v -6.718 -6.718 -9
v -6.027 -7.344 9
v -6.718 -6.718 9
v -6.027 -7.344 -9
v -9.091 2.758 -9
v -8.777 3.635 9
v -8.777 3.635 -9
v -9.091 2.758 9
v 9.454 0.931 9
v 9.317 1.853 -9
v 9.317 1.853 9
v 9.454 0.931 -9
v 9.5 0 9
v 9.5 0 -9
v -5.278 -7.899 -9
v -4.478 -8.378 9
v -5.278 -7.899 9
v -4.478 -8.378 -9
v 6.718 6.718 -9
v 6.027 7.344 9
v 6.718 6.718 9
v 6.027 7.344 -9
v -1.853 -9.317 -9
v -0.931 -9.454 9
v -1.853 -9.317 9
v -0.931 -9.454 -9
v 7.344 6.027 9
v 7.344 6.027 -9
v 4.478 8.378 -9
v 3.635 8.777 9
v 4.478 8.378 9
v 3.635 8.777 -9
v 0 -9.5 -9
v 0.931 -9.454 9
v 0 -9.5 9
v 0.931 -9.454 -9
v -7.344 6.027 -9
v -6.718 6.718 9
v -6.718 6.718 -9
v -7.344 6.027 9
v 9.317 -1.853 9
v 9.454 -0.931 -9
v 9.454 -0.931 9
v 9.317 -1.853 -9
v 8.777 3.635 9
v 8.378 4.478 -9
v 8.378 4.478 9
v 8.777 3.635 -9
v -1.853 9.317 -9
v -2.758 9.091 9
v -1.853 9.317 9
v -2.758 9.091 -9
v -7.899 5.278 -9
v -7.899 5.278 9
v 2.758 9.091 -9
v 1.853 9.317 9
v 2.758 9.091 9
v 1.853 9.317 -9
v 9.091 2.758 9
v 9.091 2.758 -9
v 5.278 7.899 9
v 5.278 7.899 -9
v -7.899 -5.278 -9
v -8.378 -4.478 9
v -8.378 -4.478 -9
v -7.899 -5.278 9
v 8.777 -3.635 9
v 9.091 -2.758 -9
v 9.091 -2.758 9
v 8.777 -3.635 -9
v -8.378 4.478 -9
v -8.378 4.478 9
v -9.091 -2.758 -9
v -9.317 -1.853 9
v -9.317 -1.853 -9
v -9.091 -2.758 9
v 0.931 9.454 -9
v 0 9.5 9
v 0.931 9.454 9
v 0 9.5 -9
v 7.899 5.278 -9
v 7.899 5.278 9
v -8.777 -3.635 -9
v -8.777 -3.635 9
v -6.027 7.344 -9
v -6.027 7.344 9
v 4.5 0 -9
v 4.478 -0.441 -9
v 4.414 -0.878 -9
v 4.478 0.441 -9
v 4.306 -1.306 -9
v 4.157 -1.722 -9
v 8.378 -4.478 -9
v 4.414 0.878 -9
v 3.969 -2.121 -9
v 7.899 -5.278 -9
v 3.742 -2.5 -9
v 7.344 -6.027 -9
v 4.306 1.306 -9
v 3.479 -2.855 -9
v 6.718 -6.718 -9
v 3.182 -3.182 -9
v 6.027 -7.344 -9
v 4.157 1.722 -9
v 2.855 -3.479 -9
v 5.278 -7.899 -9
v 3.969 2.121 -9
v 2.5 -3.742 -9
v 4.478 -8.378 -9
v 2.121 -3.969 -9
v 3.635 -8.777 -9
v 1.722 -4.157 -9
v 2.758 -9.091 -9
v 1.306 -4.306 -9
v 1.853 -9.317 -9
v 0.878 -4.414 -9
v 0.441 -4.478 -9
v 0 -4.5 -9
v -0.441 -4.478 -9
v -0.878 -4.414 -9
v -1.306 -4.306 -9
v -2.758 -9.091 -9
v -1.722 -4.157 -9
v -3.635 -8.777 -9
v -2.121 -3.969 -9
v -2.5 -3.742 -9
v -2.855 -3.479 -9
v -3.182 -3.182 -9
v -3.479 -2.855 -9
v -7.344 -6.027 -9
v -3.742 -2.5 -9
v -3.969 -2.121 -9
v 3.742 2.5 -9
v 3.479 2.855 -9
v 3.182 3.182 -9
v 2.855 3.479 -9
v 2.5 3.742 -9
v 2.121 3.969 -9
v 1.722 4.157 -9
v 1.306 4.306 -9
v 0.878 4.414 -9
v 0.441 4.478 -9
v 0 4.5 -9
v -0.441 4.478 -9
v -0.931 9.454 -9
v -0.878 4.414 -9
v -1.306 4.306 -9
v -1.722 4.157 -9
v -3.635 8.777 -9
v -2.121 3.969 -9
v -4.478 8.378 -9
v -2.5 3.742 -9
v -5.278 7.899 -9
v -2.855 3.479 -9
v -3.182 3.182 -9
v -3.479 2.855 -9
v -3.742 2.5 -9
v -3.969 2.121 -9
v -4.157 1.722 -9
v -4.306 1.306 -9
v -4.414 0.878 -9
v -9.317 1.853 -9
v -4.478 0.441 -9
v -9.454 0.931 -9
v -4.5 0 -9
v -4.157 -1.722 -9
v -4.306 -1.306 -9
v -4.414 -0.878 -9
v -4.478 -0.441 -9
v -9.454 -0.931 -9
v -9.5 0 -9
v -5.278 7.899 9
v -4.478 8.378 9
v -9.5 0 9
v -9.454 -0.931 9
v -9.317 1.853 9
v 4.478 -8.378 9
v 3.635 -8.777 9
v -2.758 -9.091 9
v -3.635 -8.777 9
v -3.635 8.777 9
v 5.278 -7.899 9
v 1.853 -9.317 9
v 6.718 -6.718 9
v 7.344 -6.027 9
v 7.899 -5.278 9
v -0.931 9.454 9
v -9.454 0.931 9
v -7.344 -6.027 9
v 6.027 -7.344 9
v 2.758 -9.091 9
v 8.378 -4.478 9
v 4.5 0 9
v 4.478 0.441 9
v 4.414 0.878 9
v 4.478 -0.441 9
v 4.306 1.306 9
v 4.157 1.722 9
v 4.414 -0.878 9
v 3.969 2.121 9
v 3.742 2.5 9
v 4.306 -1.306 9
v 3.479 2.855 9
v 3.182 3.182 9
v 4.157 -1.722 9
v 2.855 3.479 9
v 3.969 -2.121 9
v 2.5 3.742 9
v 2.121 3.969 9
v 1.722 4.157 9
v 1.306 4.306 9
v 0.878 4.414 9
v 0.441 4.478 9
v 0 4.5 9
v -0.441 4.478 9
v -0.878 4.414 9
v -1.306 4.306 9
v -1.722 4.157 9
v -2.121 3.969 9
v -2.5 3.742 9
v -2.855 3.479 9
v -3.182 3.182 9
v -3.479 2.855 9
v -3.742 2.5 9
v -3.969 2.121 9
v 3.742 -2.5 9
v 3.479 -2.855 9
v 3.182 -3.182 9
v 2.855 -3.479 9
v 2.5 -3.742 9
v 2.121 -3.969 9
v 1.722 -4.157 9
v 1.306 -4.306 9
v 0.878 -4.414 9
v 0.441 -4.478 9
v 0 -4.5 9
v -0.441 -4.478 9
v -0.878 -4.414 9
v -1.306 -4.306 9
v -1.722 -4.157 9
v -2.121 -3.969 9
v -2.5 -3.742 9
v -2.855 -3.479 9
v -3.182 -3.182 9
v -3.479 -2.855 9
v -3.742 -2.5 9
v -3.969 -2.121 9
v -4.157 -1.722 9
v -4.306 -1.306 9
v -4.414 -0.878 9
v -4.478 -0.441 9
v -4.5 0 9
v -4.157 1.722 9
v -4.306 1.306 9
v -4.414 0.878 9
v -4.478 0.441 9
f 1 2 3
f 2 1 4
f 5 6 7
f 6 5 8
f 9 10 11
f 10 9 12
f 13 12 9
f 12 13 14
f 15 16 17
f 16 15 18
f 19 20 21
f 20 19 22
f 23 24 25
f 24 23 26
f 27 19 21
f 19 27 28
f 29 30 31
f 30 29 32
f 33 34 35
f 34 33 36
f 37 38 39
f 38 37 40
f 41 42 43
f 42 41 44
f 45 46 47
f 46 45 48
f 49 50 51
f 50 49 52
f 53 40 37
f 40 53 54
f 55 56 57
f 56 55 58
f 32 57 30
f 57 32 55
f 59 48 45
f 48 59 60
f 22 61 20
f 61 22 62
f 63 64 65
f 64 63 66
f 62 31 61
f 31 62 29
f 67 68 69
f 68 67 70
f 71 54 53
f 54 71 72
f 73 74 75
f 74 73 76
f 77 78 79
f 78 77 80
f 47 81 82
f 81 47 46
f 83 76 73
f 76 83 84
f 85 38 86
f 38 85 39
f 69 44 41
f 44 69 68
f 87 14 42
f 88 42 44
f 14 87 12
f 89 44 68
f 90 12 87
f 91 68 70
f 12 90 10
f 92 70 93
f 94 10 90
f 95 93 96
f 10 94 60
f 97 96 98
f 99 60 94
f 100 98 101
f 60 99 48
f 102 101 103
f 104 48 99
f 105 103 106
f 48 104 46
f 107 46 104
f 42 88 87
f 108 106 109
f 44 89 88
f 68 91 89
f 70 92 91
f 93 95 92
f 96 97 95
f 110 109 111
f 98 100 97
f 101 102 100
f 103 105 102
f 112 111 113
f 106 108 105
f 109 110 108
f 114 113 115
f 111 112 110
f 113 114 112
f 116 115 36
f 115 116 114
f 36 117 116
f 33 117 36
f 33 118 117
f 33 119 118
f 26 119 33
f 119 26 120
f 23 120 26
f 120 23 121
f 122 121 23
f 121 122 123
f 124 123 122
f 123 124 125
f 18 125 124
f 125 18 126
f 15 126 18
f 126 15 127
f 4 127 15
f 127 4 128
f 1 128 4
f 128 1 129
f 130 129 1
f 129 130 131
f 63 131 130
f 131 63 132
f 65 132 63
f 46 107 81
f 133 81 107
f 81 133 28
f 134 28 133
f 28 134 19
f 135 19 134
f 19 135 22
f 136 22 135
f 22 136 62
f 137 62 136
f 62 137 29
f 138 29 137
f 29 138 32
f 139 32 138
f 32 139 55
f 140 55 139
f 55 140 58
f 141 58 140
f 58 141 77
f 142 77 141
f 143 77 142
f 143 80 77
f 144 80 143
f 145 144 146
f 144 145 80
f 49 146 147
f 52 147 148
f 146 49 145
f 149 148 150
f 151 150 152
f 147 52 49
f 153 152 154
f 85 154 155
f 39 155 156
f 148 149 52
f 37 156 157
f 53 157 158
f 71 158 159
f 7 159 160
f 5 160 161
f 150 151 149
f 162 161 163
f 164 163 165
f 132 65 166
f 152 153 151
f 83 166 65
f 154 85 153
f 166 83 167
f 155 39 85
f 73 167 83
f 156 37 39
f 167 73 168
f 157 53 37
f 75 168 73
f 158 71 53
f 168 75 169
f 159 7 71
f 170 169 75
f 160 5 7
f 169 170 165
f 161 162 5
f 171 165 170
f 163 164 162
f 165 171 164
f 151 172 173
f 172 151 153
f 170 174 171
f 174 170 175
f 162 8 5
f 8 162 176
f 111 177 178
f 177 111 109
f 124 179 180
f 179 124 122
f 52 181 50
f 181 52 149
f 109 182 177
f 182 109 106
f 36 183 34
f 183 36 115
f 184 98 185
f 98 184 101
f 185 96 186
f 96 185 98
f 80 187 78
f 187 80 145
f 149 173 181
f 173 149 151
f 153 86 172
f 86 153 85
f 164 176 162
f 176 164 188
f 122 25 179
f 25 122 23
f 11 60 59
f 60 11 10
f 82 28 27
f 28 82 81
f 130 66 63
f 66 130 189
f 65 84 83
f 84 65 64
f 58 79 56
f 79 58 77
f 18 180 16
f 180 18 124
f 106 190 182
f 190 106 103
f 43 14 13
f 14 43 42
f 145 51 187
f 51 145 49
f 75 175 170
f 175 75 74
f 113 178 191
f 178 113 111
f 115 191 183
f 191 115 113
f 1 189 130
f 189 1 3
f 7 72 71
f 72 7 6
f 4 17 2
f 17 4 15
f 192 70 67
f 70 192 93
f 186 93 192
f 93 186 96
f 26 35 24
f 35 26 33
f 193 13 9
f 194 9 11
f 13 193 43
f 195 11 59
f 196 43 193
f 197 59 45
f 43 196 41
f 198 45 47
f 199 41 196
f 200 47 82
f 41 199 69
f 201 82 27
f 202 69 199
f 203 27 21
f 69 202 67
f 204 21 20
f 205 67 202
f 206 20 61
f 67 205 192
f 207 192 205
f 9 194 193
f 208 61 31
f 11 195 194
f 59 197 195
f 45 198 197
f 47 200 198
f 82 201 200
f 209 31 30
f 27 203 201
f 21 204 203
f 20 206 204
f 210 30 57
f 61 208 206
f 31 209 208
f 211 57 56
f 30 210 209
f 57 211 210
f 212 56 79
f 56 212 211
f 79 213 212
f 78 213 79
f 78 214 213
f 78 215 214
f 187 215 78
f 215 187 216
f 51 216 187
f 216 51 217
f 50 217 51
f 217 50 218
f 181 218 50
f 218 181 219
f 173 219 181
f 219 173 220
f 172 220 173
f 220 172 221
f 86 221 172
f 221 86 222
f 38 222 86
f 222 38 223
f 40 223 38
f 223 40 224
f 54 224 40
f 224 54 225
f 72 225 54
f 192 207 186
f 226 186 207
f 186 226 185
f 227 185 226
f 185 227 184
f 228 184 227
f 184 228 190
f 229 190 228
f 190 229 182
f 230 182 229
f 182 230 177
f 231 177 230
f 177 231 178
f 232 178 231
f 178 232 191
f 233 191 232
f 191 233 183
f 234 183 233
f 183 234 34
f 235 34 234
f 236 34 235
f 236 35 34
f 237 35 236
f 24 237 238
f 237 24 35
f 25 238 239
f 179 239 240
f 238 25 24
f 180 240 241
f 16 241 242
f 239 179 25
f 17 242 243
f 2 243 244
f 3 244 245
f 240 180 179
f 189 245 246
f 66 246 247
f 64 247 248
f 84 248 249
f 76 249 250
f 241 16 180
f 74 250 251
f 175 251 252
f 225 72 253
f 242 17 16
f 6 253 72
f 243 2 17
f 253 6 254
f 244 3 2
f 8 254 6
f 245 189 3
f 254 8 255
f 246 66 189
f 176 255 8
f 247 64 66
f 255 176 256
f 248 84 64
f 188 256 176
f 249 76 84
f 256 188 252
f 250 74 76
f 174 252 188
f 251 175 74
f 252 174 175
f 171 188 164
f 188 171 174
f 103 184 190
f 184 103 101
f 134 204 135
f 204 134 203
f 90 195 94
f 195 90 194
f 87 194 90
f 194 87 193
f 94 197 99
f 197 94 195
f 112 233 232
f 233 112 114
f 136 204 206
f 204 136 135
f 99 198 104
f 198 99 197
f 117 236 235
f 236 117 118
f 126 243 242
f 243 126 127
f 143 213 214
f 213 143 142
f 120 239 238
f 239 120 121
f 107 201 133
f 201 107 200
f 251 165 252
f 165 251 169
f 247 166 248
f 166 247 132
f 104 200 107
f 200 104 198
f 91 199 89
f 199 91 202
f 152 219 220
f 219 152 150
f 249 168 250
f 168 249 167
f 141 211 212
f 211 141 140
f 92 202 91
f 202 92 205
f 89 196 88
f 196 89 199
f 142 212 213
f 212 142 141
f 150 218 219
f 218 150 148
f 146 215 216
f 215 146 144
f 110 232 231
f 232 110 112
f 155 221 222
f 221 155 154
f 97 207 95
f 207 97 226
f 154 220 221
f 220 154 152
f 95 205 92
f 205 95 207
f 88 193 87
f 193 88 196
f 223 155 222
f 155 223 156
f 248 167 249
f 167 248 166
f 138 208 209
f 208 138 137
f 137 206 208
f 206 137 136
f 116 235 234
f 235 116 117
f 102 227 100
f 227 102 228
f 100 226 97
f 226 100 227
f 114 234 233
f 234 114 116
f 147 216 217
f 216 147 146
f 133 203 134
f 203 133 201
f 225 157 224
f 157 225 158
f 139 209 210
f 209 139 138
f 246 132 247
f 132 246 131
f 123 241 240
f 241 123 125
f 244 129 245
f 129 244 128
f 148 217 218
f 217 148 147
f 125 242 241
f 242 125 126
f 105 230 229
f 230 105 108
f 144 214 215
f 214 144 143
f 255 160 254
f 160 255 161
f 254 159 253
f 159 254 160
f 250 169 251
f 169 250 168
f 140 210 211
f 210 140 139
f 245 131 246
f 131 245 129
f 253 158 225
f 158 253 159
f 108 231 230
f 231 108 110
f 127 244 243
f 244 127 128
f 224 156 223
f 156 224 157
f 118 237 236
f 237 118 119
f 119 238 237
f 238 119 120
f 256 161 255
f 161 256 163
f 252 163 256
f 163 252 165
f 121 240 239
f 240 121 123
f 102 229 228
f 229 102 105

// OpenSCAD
$fn=64;


DInt  = 9; 
DExt = DInt + 10;

Altura = 18;

difference(){
    cylinder(d = DExt, h = Altura, center = true);
    cylinder(d = DInt, h = Altura+1, center = true);
}
